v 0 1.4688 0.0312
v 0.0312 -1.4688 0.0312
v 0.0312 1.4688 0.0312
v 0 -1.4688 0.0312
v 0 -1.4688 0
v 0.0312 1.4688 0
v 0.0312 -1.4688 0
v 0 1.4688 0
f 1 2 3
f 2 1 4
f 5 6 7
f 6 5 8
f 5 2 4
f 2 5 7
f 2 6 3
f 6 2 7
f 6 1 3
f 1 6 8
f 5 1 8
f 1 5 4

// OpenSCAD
// file: ../../../constraints.scad
//####################################
// Math-Magik LPP - Design Constraints
// (c) 2021 by Roie R. Black
//====================================

// AMA Rules for event 208
//------------------------------------

max_overall_length = 20;
max_projected_wing_span = 18;
max_bearing_to_rear_hook = 10;
max_wing_chord = 5;
max_stab_span = 12;
max_stab_chord = 4;
max_prop_diameter = 12;
// file: MMlib/square_spar.scad
//####################################
// square_spar.scad
// (c) 2021 by Roie R. Black
//====================================


module square_spar(length=6,size=1/16) {
  translate([size/2, 0, size/2])
    cube([size,length,size], center=true);
}

square_spar(6,1/16);
// file: ../../wing_data.scad
//#####################################
// wing.data
// (c) 2021 by Roie R. Black
//=====================================
include <../constraints.scad>

// center section dimensions
center_span = 12;
spar_size = 1/16;
rib_chord = max_wing_chord - 2 * spar_size;
rib_camber = 4;
num_center_ribs = 5;

// tip section dimensions
tip_dihedral = 1.75;
tip_radius = 2;
a = tip_dihedral;
b = (max_projected_wing_span - center_span)/2;
tip_span = sqrt(a*a + b*b);
tip_dihedral_angle = atan2(a,b);
tip_le_span = tip_span - tip_radius;
tip_rib_chord = max_wing_chord - tip_radius - spar_size;
// main file
//########################################
// tip_rib.scad
// (c) 2021 - Roie R. Black
//****************************************
include <../../wing_data.scad>

use <MMlib/square_spar.scad>

module tip_rib() {
      square_spar(tip_rib_chord, spar_size/2);
}

tip_rib();
